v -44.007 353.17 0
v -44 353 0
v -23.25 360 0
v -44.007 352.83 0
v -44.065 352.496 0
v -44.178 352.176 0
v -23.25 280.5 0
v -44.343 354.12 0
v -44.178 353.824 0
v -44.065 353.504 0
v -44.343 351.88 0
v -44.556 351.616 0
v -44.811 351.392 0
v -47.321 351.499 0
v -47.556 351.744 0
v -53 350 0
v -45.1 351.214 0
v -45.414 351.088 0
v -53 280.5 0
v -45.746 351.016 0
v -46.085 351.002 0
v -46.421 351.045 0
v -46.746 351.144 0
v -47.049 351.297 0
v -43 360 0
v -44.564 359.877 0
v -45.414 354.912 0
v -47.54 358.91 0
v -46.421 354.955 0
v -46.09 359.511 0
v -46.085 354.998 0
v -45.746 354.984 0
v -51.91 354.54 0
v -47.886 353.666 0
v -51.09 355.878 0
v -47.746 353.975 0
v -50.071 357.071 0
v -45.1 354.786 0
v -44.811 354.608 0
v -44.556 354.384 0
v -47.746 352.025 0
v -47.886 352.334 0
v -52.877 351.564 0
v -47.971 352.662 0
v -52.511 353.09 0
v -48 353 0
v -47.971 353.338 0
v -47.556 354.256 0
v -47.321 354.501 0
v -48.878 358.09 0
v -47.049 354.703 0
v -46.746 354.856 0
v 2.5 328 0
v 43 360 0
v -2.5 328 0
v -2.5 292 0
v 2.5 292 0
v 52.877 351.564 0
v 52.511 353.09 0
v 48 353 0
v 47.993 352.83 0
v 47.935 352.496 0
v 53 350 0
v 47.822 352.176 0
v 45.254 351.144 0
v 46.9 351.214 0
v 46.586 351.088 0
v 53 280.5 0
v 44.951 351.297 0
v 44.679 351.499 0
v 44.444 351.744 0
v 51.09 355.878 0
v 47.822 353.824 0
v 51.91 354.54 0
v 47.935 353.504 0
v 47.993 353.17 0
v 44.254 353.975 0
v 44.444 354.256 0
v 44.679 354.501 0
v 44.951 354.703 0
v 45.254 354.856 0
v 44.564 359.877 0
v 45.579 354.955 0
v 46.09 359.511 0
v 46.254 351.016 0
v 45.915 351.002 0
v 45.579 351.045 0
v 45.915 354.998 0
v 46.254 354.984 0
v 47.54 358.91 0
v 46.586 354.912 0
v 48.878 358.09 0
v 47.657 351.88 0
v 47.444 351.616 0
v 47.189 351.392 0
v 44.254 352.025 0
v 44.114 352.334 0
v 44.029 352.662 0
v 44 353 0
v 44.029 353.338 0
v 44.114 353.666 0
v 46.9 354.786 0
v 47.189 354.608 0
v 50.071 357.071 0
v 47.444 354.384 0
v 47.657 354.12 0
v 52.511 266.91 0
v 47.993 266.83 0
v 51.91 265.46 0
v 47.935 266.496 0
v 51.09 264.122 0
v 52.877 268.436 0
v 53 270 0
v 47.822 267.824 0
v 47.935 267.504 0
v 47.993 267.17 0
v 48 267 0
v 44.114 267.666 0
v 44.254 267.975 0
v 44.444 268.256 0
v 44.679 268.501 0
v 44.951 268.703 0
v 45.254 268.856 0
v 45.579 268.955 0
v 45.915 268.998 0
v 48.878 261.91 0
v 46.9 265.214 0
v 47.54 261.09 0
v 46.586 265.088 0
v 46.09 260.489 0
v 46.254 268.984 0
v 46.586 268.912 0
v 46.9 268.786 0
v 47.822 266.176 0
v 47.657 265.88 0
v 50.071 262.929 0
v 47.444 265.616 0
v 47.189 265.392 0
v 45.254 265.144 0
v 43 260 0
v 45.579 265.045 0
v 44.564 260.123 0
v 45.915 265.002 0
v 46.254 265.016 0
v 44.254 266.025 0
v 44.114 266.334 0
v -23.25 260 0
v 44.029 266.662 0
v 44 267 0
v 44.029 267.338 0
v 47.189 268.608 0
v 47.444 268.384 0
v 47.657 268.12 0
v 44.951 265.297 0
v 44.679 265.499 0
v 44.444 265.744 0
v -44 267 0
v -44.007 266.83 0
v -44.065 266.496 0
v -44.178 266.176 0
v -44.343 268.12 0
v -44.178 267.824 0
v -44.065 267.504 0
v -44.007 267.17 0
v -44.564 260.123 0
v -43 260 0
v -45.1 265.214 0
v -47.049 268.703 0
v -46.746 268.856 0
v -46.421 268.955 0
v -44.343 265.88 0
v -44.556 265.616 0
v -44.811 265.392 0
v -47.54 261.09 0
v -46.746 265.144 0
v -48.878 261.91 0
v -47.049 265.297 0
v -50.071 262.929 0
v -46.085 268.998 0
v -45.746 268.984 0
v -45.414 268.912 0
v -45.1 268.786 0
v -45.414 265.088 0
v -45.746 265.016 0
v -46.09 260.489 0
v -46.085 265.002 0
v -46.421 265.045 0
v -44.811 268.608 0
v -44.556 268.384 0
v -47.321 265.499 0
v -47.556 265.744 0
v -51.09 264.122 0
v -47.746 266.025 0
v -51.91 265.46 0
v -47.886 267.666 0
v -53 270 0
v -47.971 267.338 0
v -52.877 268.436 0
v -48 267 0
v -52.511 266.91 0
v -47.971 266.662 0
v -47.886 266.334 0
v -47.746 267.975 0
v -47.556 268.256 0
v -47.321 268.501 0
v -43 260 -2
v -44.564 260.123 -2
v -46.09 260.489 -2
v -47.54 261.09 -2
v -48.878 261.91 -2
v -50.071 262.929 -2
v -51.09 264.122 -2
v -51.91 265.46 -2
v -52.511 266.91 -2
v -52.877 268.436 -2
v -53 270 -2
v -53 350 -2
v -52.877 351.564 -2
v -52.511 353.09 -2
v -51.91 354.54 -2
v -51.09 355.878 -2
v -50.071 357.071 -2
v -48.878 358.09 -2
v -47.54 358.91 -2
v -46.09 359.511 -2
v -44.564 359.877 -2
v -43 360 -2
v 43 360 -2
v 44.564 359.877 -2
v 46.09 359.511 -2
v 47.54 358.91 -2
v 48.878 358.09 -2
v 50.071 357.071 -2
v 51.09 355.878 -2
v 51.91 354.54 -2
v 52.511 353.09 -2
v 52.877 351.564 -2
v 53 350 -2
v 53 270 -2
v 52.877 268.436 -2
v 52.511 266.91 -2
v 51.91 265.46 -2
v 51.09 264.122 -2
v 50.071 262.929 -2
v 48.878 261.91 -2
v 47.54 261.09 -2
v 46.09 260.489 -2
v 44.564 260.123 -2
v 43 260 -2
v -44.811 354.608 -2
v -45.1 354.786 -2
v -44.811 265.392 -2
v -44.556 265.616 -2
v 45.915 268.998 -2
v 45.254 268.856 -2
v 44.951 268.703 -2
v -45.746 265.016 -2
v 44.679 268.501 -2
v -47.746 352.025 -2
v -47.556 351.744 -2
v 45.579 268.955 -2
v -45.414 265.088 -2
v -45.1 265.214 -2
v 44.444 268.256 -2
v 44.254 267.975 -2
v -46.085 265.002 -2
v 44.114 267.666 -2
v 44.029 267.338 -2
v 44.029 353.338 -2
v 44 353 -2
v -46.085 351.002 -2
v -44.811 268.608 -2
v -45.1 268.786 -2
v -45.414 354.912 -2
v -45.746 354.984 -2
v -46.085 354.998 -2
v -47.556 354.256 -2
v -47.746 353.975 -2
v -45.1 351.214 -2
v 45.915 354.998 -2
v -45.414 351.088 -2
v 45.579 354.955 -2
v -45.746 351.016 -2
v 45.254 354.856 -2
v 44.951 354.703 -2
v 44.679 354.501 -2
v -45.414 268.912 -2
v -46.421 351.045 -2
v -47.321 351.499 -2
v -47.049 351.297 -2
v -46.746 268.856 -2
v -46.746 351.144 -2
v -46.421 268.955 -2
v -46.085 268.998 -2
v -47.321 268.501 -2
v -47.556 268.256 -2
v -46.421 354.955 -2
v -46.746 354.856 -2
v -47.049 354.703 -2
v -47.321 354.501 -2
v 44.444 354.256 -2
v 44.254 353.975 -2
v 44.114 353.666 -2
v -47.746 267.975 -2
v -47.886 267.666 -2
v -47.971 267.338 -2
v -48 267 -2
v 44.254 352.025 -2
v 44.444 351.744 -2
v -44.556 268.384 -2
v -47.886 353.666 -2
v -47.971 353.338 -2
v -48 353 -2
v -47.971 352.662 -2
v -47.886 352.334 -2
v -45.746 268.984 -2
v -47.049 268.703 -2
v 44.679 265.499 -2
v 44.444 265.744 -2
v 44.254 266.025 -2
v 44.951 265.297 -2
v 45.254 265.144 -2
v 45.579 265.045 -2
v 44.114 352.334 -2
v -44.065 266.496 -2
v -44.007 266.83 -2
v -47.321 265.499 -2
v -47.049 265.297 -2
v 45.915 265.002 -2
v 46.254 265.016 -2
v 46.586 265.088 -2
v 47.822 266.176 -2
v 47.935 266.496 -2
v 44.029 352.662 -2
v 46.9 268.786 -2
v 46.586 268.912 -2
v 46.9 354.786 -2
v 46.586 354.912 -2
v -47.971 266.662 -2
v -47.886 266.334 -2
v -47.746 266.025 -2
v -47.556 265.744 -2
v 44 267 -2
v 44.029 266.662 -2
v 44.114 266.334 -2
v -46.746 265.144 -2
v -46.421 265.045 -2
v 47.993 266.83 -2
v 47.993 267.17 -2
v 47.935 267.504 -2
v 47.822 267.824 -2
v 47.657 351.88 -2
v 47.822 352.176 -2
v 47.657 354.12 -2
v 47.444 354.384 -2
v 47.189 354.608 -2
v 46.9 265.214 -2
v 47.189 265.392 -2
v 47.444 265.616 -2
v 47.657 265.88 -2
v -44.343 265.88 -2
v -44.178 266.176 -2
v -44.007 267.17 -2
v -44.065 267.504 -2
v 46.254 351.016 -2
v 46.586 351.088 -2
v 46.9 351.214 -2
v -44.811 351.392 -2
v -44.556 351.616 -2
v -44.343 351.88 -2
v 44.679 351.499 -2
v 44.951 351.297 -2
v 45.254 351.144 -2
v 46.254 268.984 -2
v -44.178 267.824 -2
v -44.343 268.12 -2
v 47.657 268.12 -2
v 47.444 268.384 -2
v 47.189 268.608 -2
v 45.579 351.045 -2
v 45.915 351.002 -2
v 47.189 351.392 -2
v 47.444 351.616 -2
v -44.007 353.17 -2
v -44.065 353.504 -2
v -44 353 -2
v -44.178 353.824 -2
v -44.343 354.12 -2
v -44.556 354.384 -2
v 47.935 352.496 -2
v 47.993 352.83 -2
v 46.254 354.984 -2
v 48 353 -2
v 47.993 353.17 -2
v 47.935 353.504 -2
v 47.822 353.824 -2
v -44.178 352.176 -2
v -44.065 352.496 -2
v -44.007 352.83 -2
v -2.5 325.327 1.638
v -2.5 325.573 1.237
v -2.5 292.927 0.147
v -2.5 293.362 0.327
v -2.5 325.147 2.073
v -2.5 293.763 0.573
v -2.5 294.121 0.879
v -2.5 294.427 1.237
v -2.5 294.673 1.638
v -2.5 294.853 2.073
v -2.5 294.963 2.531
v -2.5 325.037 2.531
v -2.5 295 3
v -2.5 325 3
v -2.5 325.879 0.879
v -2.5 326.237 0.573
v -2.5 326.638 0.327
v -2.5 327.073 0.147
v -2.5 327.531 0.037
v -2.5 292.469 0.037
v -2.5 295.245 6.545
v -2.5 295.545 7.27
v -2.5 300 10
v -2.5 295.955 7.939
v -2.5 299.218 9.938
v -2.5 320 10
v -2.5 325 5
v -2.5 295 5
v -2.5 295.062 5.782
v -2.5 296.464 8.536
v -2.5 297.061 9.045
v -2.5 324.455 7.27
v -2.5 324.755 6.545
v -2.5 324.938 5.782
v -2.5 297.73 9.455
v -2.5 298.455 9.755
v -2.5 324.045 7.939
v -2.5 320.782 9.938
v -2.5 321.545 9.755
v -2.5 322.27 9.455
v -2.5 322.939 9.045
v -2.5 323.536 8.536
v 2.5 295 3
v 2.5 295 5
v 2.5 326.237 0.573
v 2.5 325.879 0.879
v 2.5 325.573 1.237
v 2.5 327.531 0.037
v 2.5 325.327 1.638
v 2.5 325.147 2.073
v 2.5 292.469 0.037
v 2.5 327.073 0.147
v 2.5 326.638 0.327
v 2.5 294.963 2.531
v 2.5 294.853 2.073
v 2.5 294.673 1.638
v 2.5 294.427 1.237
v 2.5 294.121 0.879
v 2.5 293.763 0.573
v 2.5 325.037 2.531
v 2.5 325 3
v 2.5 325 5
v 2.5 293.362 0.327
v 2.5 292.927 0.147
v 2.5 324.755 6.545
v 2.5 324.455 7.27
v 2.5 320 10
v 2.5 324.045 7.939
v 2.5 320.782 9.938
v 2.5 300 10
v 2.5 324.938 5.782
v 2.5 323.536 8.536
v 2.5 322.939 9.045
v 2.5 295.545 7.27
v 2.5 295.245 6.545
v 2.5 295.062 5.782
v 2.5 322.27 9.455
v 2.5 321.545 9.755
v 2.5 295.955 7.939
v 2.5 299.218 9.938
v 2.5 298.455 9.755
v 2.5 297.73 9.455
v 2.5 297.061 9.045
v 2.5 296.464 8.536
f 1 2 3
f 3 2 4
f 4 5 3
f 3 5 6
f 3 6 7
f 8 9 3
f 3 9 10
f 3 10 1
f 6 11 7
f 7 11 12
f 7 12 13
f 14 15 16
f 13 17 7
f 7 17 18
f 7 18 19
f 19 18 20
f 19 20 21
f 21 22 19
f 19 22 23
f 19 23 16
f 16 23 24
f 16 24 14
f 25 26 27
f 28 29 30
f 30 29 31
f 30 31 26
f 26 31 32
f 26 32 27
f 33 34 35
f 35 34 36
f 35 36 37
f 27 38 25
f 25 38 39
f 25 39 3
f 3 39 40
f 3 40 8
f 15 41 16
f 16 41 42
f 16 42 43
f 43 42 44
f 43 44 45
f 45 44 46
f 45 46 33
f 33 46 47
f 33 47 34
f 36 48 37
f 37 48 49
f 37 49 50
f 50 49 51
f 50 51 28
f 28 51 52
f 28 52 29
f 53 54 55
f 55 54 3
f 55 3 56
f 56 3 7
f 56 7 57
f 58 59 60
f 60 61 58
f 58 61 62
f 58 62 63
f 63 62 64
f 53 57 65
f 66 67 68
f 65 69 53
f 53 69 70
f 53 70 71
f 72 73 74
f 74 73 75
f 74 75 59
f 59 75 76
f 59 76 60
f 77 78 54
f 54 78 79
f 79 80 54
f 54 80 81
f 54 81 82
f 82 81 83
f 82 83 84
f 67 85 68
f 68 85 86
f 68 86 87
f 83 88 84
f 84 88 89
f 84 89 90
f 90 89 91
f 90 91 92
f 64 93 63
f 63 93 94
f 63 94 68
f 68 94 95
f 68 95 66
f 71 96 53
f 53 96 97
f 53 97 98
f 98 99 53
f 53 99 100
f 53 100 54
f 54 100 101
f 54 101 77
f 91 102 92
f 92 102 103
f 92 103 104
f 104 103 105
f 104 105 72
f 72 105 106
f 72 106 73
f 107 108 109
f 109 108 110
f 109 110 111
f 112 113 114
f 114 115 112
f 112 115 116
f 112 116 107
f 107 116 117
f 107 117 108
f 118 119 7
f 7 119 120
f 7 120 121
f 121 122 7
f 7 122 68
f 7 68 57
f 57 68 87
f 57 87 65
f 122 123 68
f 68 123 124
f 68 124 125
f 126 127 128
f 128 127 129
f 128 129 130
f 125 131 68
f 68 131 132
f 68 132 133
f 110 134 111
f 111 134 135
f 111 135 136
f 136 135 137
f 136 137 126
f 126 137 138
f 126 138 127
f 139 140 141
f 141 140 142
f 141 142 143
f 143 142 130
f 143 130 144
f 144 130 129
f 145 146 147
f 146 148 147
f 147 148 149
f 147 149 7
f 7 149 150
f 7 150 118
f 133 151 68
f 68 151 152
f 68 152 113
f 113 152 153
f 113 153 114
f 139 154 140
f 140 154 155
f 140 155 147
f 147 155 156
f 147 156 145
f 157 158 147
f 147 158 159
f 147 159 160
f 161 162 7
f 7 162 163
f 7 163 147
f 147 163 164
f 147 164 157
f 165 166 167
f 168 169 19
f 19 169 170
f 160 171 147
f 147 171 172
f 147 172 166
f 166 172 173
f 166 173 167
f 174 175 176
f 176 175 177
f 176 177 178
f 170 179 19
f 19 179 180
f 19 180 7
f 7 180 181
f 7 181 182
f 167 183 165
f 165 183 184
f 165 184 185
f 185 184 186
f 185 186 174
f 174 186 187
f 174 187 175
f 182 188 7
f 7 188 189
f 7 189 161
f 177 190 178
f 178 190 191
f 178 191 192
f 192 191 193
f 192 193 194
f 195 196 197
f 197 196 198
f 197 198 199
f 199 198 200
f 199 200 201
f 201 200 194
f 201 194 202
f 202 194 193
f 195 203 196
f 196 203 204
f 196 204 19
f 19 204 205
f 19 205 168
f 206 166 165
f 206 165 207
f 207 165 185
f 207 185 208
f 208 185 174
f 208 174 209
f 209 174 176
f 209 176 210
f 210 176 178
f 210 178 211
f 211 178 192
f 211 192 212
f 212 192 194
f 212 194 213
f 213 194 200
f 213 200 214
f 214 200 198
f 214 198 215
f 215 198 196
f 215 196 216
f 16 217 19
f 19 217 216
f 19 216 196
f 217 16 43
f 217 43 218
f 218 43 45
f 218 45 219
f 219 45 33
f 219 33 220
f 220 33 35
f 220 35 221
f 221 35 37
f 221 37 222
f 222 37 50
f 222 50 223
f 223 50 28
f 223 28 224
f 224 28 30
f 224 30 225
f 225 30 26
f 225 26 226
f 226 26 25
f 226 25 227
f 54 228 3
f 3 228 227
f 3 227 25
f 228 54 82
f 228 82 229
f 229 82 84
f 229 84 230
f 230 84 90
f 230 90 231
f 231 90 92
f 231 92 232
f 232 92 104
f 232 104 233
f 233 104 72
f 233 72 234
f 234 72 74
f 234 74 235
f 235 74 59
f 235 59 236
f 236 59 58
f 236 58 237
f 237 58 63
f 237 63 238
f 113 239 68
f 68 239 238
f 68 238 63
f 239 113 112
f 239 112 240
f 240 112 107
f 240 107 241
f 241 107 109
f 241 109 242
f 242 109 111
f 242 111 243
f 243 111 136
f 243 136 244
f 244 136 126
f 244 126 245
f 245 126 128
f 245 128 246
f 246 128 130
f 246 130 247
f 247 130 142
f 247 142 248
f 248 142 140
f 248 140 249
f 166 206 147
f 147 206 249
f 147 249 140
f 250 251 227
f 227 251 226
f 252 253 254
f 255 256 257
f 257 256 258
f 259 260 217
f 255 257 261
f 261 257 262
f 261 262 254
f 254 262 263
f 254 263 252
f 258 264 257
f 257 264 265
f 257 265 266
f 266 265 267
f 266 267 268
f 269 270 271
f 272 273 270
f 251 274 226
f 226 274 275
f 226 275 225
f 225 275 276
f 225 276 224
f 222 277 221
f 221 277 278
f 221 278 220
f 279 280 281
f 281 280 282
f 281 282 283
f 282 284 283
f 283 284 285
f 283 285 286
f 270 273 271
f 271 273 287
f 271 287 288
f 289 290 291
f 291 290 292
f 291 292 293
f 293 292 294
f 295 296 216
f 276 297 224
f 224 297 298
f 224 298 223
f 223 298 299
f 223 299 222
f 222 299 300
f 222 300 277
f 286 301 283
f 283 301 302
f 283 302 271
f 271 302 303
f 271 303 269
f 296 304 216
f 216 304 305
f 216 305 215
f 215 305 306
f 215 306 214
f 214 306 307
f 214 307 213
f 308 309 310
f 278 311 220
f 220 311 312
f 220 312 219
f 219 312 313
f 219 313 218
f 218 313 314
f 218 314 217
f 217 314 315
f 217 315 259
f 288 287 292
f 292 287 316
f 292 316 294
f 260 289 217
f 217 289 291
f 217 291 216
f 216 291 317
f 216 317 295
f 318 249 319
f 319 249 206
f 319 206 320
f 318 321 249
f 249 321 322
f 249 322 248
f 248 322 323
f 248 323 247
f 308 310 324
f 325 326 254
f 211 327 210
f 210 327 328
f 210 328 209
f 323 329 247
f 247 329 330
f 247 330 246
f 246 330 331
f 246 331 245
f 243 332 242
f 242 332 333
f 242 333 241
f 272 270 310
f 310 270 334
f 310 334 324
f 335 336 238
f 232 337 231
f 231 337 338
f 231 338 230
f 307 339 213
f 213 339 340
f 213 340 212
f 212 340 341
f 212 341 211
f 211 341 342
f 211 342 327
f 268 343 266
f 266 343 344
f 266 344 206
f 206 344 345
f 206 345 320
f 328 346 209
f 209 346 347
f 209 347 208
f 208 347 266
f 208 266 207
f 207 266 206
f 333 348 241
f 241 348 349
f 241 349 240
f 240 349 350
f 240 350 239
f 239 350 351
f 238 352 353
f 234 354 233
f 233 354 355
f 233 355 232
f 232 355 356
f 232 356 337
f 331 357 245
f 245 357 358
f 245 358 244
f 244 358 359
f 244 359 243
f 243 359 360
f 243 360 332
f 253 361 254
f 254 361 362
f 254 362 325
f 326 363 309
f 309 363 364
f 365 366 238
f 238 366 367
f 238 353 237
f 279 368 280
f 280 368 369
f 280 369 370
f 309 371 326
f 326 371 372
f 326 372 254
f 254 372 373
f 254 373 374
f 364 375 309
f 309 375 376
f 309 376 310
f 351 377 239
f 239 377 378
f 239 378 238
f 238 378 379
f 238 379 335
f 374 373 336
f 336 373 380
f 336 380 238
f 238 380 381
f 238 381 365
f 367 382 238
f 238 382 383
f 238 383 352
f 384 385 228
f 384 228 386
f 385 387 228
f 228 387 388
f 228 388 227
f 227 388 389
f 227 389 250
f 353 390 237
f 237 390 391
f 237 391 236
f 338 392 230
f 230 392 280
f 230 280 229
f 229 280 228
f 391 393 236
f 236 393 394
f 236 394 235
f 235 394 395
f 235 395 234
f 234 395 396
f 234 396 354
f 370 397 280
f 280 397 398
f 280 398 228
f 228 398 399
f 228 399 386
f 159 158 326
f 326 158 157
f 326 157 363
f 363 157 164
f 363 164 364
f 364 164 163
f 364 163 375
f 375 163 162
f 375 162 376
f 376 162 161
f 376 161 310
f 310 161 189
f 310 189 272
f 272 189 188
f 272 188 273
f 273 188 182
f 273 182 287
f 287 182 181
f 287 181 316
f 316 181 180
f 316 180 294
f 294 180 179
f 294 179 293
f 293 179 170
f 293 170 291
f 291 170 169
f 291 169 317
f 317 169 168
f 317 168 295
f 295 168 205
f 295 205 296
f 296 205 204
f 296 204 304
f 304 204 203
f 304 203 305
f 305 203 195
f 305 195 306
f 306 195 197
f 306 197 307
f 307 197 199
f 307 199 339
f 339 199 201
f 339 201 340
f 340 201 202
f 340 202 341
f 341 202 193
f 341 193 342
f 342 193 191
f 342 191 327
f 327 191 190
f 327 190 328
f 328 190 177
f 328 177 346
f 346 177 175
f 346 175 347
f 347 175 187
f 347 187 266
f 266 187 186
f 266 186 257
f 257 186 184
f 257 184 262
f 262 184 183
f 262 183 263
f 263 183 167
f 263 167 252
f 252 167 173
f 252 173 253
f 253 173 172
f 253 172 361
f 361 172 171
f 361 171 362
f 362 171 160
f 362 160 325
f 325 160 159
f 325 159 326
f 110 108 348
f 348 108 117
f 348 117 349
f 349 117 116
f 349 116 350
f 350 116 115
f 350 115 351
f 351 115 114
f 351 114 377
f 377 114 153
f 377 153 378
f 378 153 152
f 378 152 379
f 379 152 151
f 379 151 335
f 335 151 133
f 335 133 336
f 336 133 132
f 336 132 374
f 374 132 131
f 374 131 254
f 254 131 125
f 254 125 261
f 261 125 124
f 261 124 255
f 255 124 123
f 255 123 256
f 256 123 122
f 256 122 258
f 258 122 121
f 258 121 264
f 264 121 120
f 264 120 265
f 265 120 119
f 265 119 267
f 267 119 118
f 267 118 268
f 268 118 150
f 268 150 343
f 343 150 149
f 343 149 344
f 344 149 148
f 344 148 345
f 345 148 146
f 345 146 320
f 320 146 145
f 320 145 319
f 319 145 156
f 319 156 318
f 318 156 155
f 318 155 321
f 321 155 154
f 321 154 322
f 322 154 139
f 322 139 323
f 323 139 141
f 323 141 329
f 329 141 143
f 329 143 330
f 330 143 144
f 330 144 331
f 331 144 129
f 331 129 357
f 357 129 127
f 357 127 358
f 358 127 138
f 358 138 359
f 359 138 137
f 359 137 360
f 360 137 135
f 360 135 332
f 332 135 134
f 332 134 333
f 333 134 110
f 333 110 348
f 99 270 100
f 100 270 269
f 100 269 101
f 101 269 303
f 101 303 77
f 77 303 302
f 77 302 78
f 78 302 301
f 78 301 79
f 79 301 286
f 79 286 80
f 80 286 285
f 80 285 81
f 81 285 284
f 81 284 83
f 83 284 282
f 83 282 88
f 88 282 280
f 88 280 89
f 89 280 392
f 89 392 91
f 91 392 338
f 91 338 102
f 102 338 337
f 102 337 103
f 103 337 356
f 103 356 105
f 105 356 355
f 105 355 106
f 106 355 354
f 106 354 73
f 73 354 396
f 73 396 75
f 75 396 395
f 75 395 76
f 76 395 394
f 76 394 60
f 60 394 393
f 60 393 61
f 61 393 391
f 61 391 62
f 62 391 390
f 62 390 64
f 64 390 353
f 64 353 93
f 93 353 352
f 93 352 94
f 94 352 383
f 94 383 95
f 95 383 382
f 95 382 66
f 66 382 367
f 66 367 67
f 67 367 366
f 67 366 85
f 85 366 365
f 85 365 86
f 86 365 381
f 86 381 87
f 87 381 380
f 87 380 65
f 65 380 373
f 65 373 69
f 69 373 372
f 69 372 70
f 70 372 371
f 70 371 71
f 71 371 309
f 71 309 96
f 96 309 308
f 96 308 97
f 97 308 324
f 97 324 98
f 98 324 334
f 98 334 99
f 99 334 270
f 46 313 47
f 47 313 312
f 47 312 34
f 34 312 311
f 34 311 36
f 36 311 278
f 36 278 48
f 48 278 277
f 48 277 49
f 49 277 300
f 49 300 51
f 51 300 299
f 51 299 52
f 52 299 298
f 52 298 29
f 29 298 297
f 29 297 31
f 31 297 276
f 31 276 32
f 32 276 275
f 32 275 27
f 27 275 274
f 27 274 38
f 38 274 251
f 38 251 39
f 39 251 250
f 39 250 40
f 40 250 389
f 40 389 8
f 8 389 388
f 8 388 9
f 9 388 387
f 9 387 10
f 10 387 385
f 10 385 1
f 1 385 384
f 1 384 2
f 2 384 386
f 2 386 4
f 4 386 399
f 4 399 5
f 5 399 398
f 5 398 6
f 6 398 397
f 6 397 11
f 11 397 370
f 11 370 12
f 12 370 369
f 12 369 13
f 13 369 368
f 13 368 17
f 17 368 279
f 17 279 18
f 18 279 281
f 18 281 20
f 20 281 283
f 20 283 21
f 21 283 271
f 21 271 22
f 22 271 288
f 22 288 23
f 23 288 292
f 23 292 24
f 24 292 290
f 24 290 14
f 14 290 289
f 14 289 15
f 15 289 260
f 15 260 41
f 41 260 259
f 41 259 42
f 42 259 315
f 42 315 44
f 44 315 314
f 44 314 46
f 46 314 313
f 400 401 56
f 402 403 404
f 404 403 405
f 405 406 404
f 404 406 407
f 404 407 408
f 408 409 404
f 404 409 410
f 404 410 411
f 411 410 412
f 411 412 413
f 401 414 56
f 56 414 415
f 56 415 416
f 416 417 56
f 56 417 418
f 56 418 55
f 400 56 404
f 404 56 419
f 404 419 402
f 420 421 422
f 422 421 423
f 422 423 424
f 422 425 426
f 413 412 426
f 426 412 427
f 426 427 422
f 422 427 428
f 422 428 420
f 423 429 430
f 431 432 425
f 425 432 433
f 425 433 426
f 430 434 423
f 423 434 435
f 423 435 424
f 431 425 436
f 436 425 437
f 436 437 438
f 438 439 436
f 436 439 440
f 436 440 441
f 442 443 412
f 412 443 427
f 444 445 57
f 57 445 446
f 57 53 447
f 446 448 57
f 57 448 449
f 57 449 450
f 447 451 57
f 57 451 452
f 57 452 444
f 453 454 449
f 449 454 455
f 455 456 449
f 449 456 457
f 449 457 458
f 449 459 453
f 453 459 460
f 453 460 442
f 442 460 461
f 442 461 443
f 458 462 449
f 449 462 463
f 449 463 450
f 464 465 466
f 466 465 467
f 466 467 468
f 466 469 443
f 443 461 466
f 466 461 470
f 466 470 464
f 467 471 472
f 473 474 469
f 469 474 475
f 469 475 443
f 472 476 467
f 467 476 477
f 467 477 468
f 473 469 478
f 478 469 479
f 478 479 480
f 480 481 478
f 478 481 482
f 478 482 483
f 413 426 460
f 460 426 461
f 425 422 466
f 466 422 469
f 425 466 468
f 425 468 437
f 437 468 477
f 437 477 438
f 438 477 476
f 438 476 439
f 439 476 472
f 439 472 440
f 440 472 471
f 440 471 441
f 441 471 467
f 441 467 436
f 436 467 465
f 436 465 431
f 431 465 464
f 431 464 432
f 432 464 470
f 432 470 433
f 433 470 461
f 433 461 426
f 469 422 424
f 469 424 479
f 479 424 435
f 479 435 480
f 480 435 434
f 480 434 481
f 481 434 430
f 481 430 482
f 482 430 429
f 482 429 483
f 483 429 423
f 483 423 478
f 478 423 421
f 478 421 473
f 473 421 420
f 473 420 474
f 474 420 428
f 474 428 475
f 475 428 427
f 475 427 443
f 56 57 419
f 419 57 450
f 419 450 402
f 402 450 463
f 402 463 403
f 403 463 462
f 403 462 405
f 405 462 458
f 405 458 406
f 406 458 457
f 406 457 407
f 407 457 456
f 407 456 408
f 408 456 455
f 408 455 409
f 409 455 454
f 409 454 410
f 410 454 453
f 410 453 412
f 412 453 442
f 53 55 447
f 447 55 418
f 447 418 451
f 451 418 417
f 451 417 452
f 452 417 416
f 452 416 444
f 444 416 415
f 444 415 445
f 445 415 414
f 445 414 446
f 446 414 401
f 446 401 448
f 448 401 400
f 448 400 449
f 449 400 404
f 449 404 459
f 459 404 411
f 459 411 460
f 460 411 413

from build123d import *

# Parameters (mm, degrees)
BOSS_EXTRUDE1_DEPTH = 2
SKETCH2_R           = 2
CUT_EXTRUDE1_DEPTH  = 3
SKETCH6_W           = 5
SKETCH6_H           = 30
BOSS_EXTRUDE2_DEPTH = 10
FILLET1_R           = 5
FILLET2_R           = 3


with BuildPart() as part:
    # Sketch1 → Boss-Extrude1 (new body)
    with BuildSketch(Plane.XY):
        with BuildLine():
            Line((-43, 260), (43, 260))
            ThreePointArc((43, 260), (50.071067812, 262.928932188), (53, 270))
            Line((53, 270), (53, 350))
            ThreePointArc((53, 350), (50.071067812, 357.071067812), (43, 360))
            Line((43, 360), (-43, 360))
            ThreePointArc((-43, 360), (-50.071067812, 357.071067812), (-53, 350))
            Line((-53, 350), (-53, 270))
            ThreePointArc((-53, 270), (-50.071067812, 262.928932188), (-43, 260))
        make_face()
    extrude(amount=-BOSS_EXTRUDE1_DEPTH)

    # Sketch2 → Cut-Extrude1 (cut)
    with BuildSketch(Plane(origin=(0, 0, -2), x_dir=(-1, 0, 0), z_dir=(0, 0, -1))):
        with Locations((46, 267)):
            Circle(SKETCH2_R)
        with Locations((-46, 267)):
            Circle(SKETCH2_R)
        with Locations(Location((-46, 353, 0), (0, 0, 180))):
            Circle(SKETCH2_R)
        with Locations(Location((46, 353, 0), (0, 0, 180))):
            Circle(SKETCH2_R)
    extrude(amount=-CUT_EXTRUDE1_DEPTH, mode=Mode.SUBTRACT)

    # Sketch6 → Boss-Extrude2 (add)
    with BuildSketch(Plane.XY):
        with Locations((0, 310)):
            Rectangle(SKETCH6_W, SKETCH6_H)
    extrude(amount=BOSS_EXTRUDE2_DEPTH)

    # Fillet1
    fillet1_edges = [part.edges().sort_by_distance(p)[0] for p in [
        (0, 295, 10),
        (0, 325, 10),
    ]]
    fillet(fillet1_edges, radius=FILLET1_R)

    # Fillet2
    fillet2_edges = [part.edges().sort_by_distance(p)[0] for p in [
        (0, 295, 0),
        (0, 325, 0),
    ]]
    fillet(fillet2_edges, radius=FILLET2_R)


solid = part.part
